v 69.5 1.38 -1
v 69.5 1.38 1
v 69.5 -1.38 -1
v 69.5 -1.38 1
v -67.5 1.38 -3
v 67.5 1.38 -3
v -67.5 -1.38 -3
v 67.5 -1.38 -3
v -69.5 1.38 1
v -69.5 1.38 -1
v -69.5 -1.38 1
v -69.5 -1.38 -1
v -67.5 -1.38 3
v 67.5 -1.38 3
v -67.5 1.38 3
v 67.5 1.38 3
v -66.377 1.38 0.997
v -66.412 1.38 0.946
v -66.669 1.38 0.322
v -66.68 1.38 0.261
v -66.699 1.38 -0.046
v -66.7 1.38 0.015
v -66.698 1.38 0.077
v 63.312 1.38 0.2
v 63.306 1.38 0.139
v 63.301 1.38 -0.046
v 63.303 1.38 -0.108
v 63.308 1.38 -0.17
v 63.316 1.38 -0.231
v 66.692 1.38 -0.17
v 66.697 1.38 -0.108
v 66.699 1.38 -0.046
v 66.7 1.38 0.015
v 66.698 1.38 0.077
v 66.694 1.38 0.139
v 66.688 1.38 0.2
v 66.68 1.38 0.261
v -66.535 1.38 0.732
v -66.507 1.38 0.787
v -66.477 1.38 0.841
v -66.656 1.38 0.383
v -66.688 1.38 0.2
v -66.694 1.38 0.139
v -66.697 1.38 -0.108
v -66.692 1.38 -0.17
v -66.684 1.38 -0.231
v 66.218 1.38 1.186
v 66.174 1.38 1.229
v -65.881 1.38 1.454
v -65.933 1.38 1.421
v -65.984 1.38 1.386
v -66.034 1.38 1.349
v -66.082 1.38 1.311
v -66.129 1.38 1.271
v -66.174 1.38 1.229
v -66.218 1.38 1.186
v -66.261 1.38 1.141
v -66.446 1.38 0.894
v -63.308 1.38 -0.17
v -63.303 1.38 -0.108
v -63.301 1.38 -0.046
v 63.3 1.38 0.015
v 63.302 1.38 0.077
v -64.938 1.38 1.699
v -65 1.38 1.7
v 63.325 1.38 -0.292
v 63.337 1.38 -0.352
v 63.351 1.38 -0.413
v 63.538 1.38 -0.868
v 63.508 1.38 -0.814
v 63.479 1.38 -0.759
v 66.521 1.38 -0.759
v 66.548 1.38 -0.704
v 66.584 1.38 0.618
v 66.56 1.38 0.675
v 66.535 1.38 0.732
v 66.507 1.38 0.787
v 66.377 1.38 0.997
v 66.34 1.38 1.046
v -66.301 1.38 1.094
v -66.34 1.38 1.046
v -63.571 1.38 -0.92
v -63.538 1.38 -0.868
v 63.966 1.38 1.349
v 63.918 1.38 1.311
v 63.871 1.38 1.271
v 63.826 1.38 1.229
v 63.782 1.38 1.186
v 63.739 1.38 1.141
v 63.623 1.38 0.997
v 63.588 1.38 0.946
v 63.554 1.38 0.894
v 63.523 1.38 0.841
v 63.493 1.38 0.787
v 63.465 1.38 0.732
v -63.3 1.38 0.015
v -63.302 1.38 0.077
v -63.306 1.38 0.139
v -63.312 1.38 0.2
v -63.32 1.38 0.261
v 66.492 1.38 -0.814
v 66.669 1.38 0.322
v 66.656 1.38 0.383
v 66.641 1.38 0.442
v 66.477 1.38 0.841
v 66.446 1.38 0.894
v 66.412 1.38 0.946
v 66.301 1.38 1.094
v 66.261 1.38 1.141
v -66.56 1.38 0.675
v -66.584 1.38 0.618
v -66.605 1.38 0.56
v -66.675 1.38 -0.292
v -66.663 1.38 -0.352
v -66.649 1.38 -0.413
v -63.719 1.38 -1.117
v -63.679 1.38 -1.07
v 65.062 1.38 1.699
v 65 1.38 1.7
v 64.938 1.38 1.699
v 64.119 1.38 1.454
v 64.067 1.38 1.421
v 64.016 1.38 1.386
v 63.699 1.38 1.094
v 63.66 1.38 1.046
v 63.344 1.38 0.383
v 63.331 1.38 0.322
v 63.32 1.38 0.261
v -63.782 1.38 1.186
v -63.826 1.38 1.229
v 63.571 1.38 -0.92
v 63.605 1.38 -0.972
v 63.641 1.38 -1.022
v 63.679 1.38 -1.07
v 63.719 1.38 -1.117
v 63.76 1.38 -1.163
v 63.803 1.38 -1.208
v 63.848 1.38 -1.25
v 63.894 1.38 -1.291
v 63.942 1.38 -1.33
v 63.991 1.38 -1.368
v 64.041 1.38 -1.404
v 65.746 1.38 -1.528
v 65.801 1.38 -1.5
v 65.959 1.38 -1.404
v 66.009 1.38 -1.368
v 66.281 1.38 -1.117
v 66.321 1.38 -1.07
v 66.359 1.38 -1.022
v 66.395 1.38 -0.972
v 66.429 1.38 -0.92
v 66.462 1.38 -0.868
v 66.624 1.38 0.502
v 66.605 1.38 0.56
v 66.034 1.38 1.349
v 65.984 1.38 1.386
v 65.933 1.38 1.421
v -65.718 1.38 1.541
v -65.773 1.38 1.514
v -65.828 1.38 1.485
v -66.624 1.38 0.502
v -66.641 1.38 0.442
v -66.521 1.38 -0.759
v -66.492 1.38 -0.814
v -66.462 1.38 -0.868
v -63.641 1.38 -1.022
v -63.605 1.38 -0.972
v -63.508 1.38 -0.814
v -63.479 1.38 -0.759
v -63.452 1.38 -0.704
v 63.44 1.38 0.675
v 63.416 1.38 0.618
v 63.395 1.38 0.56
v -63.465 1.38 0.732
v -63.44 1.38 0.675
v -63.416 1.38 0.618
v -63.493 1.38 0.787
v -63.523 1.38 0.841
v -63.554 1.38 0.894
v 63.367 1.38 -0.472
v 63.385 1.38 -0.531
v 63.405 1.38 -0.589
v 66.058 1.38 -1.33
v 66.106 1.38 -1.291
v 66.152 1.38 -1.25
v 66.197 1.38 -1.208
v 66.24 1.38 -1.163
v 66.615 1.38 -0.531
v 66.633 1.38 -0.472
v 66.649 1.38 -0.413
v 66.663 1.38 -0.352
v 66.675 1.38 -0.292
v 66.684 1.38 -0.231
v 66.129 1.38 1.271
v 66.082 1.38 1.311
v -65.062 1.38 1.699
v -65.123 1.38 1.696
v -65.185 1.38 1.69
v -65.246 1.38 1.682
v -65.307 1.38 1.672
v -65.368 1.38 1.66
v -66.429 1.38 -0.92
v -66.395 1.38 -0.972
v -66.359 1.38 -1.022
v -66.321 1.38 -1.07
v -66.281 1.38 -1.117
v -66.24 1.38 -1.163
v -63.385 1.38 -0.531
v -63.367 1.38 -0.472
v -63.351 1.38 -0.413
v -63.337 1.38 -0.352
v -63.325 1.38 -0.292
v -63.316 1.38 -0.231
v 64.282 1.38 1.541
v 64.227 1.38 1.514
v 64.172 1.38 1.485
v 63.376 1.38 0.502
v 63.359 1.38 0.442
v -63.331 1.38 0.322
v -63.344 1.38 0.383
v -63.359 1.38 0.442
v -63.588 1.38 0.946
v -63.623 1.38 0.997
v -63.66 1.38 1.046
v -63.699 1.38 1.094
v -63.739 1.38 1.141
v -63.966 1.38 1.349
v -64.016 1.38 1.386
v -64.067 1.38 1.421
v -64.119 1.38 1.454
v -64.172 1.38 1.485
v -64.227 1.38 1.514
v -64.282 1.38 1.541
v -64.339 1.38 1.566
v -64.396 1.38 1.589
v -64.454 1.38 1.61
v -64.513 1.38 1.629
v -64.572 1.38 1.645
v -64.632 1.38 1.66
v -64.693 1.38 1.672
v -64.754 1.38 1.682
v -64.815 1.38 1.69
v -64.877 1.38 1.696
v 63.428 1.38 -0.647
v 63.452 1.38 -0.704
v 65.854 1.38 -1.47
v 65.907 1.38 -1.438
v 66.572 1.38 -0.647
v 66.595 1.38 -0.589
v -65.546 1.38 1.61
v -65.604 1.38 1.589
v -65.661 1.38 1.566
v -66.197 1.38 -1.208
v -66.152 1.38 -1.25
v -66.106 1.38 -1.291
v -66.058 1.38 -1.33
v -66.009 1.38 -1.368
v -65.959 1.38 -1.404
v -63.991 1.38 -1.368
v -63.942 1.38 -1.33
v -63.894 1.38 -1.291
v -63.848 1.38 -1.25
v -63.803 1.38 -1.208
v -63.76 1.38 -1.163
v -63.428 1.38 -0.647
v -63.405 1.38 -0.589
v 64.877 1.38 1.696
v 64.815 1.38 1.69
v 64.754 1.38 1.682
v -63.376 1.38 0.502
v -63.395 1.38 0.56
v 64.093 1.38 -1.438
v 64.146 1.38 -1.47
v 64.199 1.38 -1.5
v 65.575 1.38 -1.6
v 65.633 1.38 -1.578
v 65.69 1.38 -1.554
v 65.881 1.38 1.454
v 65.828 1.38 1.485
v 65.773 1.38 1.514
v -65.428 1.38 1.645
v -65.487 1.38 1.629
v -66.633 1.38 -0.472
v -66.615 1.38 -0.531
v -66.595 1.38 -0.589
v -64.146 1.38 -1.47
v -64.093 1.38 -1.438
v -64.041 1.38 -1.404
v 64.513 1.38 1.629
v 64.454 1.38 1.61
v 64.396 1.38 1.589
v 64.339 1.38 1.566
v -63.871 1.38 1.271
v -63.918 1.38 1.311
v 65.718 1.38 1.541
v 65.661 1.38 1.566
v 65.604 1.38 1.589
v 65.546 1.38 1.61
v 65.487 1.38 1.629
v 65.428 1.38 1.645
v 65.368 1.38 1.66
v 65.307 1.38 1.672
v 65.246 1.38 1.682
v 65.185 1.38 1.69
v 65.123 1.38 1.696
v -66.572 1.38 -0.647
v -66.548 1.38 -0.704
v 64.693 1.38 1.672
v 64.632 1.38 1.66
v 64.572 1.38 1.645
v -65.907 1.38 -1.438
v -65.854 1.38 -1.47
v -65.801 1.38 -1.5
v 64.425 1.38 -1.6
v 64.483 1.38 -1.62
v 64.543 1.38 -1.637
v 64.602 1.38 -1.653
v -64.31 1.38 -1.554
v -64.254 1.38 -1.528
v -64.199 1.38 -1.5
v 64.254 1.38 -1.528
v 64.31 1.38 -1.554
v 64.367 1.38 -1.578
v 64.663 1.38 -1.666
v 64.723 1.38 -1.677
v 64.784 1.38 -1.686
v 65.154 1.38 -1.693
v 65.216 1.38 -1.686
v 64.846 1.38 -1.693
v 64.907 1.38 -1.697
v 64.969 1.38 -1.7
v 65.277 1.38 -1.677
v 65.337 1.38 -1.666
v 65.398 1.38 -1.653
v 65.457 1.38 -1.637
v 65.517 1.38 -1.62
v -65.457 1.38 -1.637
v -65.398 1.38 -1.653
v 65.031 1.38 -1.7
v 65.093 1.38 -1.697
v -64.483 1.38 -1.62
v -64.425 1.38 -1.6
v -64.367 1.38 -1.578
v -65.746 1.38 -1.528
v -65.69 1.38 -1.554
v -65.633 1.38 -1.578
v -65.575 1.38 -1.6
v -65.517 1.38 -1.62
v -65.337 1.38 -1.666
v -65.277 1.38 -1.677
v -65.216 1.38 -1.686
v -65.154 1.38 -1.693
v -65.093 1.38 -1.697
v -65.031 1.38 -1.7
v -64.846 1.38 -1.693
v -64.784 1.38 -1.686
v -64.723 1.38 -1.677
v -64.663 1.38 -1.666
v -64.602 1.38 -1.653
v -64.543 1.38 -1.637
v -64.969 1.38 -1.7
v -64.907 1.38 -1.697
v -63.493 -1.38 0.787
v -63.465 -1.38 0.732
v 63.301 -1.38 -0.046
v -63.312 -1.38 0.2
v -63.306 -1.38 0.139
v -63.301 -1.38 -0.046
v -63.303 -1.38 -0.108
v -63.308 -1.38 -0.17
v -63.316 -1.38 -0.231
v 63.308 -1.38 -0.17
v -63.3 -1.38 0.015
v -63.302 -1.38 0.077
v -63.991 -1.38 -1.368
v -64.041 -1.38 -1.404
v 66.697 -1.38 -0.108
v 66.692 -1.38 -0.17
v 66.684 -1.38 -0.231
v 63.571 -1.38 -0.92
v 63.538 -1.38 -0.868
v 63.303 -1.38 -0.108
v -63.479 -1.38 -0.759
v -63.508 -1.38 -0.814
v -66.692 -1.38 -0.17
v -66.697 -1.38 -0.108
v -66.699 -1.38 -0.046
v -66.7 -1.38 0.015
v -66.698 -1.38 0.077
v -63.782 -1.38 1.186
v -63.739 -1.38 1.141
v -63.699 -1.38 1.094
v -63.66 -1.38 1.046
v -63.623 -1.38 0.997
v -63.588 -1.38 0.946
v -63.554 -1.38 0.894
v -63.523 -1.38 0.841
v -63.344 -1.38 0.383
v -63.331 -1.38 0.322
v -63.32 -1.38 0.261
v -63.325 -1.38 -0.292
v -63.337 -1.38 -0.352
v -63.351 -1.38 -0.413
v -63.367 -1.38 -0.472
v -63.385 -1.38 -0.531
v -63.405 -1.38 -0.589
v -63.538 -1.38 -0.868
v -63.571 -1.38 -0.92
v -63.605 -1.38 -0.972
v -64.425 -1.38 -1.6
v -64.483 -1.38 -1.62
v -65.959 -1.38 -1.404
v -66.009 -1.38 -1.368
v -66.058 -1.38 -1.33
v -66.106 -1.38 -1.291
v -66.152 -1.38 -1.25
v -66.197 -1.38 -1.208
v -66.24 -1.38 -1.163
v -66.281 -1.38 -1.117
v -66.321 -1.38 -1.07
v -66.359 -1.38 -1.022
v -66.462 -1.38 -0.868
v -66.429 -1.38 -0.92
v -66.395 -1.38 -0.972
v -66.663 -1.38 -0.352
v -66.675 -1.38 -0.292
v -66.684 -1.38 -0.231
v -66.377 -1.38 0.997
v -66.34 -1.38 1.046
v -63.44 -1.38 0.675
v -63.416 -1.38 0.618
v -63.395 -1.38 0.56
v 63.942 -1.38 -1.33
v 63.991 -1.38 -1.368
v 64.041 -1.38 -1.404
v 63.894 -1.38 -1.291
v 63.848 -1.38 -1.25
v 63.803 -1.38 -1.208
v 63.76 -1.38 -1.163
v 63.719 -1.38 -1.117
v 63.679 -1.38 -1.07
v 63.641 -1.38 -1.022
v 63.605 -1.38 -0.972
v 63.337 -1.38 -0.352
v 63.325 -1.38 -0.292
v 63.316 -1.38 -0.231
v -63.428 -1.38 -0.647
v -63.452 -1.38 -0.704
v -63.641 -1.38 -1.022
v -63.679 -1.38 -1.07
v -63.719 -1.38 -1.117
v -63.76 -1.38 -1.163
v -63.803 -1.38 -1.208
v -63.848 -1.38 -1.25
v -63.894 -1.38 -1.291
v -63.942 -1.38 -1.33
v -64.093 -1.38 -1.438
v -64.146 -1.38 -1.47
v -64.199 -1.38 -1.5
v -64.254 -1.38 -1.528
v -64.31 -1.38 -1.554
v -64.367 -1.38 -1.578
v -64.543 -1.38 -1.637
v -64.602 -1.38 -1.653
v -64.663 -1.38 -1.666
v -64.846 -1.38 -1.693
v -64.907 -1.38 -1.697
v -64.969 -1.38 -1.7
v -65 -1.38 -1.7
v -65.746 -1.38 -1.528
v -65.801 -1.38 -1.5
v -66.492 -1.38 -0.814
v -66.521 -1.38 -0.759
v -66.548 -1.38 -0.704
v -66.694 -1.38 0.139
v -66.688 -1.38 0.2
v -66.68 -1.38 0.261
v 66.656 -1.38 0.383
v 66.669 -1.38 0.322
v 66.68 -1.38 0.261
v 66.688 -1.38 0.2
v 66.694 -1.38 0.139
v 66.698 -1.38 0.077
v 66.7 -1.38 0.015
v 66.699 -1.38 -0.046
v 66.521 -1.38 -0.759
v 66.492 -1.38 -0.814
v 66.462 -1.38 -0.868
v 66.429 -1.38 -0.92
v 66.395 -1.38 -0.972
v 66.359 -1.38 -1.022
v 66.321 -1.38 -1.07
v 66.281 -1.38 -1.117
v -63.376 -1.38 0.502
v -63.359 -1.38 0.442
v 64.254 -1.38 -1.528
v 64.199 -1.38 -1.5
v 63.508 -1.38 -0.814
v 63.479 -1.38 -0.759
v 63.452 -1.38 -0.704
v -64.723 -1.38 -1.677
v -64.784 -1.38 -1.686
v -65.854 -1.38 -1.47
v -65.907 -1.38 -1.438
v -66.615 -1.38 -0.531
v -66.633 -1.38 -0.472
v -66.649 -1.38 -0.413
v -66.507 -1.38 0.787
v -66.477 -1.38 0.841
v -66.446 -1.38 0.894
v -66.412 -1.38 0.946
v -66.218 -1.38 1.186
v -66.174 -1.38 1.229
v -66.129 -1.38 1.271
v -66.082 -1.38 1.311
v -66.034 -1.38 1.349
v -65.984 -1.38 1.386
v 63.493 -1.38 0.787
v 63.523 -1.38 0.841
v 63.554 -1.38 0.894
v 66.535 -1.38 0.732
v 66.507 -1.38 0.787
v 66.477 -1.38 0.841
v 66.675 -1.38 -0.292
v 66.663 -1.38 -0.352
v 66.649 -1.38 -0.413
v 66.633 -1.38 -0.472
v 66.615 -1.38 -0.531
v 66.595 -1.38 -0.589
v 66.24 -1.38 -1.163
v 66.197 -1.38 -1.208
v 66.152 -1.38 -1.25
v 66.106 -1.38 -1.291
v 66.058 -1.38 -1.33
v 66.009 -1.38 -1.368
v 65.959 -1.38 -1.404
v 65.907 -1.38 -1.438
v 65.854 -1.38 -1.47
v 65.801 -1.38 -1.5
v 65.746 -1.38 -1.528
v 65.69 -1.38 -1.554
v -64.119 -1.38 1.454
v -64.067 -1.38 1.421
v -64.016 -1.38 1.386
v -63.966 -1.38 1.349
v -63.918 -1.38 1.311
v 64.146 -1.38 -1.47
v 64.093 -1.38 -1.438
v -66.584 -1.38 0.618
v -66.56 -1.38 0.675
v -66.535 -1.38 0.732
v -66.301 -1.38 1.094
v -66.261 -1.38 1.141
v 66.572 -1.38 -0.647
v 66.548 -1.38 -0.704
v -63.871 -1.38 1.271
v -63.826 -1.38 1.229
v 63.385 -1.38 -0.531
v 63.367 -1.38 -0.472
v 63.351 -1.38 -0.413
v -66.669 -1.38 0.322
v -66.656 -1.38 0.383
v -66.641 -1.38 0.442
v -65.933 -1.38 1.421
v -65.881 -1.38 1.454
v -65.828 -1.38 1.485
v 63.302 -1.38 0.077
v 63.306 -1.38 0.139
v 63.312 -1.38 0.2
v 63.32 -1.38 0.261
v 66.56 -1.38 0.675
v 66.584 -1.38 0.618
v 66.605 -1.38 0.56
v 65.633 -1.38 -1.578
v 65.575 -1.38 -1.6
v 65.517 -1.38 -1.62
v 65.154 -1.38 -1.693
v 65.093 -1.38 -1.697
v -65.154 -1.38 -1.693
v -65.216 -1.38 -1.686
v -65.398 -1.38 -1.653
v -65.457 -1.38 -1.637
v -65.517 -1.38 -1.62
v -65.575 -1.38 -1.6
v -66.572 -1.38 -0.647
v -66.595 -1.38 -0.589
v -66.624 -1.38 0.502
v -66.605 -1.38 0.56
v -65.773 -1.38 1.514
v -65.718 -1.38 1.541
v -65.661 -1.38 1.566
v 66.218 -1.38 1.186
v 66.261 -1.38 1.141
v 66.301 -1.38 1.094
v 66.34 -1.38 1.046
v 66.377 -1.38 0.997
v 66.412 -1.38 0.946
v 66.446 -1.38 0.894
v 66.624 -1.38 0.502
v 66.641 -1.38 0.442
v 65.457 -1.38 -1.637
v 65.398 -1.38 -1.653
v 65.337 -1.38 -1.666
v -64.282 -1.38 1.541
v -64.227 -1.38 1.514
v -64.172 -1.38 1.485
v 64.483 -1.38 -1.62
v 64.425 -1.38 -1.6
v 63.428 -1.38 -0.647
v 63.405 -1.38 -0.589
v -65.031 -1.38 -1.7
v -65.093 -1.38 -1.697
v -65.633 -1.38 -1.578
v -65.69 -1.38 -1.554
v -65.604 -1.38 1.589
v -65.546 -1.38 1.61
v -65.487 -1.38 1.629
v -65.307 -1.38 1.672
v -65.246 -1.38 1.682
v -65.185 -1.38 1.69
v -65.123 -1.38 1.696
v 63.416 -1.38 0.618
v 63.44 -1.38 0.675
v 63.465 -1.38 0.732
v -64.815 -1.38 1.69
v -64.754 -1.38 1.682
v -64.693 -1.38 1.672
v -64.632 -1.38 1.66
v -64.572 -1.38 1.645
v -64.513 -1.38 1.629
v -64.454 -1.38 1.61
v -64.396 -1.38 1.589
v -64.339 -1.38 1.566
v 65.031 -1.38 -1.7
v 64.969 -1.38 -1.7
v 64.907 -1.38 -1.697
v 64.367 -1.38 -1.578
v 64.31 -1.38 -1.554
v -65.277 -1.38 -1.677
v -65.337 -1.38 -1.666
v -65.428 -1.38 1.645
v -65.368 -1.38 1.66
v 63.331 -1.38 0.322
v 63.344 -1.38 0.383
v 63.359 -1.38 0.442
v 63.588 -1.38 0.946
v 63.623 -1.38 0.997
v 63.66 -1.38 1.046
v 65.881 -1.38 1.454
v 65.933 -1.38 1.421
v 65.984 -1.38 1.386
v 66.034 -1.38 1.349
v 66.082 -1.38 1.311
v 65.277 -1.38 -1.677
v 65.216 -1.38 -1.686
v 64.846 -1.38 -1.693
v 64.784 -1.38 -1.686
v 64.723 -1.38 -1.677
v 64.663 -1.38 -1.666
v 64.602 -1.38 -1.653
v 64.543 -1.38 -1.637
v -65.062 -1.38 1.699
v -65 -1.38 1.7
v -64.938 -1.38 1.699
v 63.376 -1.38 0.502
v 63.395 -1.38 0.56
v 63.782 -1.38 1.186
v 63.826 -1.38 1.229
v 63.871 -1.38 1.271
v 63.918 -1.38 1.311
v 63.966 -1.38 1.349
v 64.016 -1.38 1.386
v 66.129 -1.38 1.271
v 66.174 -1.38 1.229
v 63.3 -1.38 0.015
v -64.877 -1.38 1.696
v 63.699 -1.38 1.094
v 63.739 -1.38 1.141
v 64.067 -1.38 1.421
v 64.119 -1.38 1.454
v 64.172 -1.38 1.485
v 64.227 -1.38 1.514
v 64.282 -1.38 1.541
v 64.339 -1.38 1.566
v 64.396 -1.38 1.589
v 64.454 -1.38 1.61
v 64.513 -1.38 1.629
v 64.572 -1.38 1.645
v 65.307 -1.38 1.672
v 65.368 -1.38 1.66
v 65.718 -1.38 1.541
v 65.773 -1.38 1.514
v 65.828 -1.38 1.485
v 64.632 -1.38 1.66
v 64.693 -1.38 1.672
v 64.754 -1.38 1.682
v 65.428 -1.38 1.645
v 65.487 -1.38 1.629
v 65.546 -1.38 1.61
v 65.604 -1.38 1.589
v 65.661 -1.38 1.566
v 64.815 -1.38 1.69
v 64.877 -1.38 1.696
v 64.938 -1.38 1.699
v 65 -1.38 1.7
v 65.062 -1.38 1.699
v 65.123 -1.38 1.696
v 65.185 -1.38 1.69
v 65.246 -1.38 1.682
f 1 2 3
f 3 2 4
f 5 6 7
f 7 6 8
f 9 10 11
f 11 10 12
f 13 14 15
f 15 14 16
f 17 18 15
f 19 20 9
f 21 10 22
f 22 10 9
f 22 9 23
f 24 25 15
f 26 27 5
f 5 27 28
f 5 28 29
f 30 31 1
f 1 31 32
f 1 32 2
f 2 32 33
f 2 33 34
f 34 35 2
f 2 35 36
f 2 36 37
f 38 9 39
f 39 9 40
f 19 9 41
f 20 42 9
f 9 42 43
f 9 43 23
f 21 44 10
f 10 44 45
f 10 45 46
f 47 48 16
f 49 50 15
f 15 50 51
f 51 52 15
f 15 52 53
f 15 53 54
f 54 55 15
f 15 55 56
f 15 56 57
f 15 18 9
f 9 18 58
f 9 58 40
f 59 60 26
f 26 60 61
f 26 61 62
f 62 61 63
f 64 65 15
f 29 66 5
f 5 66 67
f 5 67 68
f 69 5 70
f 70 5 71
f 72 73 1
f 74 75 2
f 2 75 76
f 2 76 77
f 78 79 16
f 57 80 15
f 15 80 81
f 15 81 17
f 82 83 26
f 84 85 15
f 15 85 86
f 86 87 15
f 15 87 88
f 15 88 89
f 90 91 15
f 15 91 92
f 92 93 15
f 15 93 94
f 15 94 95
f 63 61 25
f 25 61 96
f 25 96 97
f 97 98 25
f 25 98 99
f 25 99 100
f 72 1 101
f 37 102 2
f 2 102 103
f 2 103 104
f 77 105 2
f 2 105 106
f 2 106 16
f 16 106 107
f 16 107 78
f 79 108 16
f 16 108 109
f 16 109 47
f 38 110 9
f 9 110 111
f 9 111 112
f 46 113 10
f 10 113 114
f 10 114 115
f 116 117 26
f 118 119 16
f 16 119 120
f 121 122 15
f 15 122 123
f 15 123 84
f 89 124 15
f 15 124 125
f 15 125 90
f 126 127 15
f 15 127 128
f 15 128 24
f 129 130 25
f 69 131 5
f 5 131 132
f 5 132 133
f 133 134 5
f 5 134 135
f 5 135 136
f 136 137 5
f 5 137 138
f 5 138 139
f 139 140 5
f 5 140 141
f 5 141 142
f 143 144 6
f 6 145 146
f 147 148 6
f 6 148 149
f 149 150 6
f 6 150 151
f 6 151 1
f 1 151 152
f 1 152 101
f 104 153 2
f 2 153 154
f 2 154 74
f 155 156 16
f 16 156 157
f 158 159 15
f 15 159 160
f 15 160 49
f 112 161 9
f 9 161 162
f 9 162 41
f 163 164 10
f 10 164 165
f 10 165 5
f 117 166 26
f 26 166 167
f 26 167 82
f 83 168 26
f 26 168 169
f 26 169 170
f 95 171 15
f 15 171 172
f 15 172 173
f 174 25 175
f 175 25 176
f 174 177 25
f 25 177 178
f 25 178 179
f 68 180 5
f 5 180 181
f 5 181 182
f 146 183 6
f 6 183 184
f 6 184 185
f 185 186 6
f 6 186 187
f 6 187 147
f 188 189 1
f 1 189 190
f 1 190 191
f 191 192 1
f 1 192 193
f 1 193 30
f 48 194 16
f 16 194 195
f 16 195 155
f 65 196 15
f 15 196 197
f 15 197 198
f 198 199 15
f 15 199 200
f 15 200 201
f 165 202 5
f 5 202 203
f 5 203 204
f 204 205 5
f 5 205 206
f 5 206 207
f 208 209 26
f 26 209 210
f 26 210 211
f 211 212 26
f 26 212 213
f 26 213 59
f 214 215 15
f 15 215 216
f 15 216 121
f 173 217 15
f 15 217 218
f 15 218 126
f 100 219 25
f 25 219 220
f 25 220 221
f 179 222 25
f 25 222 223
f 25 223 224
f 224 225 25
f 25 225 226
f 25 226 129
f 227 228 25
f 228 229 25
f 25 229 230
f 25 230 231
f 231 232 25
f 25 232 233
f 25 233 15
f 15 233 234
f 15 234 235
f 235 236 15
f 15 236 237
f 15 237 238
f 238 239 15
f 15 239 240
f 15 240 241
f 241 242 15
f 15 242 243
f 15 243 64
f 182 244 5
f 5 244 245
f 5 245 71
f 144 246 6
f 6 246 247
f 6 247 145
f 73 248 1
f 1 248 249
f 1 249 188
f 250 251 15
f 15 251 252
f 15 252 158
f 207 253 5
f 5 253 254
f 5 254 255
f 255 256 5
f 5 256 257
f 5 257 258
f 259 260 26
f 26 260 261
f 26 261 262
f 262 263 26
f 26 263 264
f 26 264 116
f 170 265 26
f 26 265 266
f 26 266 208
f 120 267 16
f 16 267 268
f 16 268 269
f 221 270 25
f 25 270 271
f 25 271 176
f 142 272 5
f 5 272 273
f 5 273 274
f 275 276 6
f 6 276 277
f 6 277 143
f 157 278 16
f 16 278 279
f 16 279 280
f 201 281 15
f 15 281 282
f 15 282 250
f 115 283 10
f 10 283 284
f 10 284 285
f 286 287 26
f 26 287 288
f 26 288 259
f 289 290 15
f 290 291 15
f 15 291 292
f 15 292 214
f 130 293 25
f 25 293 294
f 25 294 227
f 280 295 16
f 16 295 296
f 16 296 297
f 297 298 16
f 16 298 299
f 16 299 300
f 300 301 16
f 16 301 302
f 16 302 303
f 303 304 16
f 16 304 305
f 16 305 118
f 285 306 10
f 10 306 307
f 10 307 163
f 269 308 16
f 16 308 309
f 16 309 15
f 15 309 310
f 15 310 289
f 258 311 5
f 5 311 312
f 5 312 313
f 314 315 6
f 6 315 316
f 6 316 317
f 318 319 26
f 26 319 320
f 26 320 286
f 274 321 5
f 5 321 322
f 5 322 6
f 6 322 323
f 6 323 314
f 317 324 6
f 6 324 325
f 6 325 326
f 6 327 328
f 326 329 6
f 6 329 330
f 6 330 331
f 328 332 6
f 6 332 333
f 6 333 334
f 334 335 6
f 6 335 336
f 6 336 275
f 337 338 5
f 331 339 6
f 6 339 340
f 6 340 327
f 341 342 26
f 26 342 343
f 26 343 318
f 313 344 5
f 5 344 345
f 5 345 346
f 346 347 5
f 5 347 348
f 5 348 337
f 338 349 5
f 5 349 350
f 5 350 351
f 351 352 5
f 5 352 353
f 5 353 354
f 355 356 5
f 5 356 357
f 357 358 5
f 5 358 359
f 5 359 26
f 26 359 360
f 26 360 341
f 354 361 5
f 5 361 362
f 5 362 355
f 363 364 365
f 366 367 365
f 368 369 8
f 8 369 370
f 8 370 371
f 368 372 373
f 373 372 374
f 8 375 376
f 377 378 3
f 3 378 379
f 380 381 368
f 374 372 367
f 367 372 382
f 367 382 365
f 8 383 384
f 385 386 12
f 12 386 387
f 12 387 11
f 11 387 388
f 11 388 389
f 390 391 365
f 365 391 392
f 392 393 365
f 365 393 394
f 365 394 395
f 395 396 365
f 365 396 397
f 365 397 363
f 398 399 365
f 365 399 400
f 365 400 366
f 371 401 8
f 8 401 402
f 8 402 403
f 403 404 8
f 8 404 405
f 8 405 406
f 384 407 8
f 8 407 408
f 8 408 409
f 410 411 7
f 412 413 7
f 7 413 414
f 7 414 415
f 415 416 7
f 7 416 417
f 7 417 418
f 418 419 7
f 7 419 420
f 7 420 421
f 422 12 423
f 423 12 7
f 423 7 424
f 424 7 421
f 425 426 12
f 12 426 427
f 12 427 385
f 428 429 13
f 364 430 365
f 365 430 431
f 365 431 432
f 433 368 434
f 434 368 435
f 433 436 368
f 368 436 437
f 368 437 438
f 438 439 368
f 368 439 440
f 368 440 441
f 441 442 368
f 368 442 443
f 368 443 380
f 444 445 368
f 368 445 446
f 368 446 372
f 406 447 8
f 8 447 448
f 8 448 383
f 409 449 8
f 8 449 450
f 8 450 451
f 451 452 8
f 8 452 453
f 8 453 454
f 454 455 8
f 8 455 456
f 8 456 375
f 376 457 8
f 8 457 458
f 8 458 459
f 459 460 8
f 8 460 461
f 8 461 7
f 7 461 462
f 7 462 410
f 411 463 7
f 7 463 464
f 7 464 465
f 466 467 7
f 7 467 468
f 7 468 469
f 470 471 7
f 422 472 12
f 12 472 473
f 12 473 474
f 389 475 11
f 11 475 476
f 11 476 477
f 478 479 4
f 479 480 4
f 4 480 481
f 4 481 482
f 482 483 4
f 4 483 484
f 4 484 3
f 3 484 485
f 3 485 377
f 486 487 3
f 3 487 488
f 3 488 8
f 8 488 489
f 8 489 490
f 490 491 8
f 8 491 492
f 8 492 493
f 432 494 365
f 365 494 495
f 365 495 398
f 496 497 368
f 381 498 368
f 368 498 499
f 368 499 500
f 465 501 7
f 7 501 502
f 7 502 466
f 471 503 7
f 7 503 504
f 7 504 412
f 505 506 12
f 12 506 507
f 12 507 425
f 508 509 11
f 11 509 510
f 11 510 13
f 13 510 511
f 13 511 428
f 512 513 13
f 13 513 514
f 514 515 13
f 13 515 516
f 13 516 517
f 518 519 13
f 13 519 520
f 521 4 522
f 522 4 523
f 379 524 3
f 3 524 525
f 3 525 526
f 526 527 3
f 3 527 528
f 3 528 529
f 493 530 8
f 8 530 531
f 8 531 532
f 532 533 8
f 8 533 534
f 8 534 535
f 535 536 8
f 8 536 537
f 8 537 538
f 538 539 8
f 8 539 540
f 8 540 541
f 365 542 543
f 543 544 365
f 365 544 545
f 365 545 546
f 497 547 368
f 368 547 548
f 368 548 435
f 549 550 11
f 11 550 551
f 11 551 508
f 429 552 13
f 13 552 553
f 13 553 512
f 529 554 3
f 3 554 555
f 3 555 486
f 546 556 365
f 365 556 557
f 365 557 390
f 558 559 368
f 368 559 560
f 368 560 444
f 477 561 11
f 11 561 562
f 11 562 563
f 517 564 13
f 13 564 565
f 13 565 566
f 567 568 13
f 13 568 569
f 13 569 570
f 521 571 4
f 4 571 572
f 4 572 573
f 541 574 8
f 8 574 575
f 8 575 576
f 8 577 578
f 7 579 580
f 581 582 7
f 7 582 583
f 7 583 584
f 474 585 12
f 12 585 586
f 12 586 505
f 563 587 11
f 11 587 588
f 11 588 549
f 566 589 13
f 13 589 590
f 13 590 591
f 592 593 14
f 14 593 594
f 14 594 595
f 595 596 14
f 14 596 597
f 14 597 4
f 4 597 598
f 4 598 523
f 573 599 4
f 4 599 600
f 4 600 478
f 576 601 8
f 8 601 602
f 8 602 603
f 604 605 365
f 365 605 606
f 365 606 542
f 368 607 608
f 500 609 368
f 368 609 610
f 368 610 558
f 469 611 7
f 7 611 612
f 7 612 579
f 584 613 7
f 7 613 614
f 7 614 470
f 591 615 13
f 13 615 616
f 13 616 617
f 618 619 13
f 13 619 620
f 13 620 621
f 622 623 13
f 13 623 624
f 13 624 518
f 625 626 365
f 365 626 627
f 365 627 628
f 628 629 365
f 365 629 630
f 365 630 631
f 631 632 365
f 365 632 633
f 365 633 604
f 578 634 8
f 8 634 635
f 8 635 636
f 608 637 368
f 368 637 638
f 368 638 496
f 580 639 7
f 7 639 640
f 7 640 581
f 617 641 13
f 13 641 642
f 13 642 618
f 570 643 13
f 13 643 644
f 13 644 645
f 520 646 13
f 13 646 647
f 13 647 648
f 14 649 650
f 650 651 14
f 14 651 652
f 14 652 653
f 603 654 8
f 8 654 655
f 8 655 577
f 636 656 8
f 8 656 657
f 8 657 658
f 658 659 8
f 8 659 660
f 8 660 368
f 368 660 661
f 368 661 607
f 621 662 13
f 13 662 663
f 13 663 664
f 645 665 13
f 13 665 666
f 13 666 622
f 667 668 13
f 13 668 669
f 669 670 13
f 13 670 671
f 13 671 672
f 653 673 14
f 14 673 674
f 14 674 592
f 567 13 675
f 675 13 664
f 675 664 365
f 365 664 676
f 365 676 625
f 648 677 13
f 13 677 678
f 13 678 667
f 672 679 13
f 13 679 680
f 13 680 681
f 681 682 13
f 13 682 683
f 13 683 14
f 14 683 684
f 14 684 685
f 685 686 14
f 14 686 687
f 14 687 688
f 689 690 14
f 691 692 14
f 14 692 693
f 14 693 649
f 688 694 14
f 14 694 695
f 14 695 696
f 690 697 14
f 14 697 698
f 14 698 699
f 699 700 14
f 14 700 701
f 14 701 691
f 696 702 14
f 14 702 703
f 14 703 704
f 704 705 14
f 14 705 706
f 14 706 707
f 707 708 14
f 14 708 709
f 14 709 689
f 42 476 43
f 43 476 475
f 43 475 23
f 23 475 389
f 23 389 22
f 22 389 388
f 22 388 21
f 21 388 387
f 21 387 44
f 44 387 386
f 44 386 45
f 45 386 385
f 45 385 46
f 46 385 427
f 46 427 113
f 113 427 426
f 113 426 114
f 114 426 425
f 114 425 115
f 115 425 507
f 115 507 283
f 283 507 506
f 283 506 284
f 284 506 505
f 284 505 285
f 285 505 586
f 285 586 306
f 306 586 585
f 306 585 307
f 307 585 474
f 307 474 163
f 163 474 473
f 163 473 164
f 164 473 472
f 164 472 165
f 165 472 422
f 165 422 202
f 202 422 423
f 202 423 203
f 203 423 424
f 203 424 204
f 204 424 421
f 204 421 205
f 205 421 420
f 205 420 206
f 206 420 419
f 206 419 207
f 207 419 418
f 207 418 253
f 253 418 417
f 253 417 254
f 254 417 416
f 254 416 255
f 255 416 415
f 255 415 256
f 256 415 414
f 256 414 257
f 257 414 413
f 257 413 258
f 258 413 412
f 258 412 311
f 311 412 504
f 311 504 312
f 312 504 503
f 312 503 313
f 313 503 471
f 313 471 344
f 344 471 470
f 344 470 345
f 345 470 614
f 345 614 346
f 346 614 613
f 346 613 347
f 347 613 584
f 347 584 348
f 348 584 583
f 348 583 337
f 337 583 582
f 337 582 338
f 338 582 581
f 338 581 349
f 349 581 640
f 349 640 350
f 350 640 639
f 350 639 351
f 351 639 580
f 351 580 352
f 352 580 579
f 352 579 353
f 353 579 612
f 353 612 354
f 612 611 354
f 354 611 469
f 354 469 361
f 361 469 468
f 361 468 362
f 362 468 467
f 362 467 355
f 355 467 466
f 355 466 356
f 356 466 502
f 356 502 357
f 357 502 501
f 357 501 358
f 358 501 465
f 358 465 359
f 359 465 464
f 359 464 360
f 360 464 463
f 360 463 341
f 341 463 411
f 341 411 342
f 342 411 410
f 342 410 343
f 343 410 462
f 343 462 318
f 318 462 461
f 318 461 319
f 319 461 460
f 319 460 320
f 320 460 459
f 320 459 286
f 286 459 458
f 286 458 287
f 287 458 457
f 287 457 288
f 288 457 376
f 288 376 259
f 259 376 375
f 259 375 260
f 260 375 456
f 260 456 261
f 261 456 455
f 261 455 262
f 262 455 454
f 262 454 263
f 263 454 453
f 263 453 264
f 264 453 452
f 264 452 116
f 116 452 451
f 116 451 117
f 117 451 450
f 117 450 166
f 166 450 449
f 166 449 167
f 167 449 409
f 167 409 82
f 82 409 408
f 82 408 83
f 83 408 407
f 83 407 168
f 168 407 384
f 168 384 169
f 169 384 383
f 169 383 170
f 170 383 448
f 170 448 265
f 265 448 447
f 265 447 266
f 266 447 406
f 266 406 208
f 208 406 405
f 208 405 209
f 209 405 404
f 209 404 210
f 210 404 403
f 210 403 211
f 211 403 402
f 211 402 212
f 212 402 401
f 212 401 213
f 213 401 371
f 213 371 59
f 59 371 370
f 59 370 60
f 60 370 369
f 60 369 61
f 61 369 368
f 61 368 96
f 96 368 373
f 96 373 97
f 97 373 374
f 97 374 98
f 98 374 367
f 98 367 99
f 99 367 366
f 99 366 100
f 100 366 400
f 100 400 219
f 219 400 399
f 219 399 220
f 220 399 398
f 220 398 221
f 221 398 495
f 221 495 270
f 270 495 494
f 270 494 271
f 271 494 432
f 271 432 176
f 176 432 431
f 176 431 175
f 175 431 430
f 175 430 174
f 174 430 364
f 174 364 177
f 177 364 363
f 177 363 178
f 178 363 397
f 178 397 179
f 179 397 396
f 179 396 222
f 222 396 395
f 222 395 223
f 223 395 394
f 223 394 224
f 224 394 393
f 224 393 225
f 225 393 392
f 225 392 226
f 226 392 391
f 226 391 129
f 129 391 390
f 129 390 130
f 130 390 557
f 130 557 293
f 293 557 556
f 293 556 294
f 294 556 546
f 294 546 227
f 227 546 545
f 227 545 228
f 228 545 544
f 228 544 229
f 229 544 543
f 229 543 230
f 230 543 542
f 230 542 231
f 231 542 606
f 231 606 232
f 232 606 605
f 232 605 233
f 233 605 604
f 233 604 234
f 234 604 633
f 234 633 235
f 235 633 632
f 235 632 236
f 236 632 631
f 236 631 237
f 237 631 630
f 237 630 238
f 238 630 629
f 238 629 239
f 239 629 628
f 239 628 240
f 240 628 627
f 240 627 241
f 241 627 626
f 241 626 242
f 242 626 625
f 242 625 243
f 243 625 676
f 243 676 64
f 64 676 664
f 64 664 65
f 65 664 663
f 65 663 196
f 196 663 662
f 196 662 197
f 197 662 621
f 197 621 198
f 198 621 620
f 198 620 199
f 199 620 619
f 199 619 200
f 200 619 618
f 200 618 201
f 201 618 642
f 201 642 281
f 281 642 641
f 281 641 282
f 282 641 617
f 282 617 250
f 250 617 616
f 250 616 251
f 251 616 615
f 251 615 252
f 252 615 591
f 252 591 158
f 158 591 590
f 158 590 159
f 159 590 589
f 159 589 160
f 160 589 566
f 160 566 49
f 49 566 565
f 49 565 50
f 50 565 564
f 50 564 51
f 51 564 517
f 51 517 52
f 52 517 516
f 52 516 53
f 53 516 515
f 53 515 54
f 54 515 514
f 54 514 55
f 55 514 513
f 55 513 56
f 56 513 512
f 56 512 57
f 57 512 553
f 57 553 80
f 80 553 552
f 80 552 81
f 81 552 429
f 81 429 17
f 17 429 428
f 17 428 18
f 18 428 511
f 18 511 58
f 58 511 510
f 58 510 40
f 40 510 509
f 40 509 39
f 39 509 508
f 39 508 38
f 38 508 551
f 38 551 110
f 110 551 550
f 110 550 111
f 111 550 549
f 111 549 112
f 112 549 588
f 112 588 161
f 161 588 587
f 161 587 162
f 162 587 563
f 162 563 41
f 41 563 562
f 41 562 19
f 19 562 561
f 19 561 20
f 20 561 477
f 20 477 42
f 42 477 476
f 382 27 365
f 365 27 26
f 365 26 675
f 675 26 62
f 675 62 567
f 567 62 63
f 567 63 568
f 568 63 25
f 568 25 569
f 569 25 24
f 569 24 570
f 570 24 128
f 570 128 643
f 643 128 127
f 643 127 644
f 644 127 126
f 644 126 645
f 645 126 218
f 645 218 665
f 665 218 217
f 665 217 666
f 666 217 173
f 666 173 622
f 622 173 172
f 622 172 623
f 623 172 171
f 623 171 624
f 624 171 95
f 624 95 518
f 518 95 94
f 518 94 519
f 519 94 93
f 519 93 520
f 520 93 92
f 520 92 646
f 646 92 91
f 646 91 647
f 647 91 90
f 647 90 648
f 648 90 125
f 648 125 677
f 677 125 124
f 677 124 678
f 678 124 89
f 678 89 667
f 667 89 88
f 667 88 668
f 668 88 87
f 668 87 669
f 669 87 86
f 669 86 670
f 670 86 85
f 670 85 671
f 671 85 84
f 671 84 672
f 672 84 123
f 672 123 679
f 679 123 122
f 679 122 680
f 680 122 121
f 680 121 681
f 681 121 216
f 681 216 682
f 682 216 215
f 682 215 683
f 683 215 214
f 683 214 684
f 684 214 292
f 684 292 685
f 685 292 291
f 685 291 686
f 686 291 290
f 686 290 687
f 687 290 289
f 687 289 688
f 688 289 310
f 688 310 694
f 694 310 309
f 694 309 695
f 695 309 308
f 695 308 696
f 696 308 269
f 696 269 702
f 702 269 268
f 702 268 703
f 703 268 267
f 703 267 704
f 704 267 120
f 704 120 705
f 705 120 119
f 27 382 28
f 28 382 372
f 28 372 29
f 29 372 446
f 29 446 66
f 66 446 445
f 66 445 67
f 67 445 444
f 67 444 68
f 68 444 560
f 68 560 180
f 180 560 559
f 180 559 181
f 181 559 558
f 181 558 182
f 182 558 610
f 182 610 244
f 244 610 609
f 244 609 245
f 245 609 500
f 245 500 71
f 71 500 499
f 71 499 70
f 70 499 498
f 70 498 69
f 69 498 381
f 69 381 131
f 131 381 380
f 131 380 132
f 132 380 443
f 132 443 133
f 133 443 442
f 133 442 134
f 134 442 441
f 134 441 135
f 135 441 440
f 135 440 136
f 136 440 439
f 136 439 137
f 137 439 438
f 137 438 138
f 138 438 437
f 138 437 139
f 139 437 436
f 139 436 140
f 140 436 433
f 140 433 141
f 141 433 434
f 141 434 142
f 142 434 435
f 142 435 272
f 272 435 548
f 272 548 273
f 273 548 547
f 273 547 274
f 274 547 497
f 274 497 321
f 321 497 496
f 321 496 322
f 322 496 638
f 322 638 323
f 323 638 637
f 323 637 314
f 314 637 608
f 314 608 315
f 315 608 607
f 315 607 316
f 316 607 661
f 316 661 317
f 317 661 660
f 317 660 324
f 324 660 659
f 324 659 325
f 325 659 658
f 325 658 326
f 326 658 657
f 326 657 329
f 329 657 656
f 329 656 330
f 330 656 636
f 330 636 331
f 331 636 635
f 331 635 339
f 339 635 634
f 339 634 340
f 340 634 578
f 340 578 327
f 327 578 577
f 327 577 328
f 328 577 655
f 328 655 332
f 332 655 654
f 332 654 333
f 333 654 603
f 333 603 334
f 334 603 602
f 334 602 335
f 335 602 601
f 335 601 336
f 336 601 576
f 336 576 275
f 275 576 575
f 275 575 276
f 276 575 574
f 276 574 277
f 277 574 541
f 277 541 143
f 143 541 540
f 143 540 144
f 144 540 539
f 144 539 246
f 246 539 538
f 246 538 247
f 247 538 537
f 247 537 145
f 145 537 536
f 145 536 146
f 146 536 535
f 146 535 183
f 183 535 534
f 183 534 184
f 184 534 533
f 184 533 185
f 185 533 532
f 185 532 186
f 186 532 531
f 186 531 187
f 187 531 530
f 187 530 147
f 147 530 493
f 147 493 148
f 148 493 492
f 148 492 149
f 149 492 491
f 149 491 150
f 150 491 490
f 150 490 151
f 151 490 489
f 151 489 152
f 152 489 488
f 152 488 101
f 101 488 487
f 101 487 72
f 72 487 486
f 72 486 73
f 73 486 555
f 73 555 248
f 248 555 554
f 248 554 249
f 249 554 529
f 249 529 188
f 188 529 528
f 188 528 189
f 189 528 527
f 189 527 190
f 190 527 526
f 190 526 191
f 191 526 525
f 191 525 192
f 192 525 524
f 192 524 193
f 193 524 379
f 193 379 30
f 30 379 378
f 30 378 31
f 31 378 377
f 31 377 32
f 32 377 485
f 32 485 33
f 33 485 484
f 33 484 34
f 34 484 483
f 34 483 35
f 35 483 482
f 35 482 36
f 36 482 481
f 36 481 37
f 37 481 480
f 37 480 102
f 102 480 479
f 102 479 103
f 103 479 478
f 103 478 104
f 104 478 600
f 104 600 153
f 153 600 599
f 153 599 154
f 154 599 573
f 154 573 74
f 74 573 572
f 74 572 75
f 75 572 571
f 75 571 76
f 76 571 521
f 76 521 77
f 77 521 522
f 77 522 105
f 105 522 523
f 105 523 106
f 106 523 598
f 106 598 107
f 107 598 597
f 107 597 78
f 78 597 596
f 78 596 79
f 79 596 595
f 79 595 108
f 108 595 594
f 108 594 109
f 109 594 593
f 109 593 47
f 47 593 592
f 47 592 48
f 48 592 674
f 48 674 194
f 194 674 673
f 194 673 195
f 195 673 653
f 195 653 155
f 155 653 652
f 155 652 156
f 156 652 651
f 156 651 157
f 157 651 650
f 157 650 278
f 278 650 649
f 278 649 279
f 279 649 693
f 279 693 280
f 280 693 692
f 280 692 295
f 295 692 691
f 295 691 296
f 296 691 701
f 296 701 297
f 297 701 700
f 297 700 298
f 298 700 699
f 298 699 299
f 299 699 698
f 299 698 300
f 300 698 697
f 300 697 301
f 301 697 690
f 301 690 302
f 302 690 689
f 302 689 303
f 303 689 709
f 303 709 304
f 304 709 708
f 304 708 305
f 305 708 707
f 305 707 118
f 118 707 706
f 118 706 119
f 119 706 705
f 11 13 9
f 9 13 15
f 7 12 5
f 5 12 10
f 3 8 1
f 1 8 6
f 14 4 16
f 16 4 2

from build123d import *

# Parameters (mm, degrees)
SKETCH1_W               = 139
SKETCH1_H               = 6
BOSS_EXTRUDE1_DEPTH     = 1.38
CUT_EXTRUDE4_DEPTH      = 70.619448432
CUT_EXTRUDE4_DEPTH_BACK = 70.619448432
SKETCH8_R               = 1.7
CHAMFER2_SIZE           = 2


with BuildPart() as part:
    # Sketch1 → Boss-Extrude1 (new, symmetric)
    with BuildSketch(Plane(origin=(0, 0, 0), x_dir=(1, 0, 0), z_dir=(0, 1, 0))):
        Rectangle(SKETCH1_W, SKETCH1_H)
    extrude(amount=BOSS_EXTRUDE1_DEPTH, both=True)

    # Sketch8 → Cut-Extrude4 (cut, two sides: drawn at the far end of the back side and taken through both)
    with BuildSketch(Plane(origin=(0, 1.38, 0), x_dir=(1, 0, 0), z_dir=(0, 1, 0)).offset(-CUT_EXTRUDE4_DEPTH_BACK)):
        with Locations(Location((65, 0, 0), (0, 0, 270))):
            Circle(SKETCH8_R)
        with Locations(Location((-65, 0, 0), (0, 0, 270))):
            Circle(SKETCH8_R)
    extrude(amount=CUT_EXTRUDE4_DEPTH + CUT_EXTRUDE4_DEPTH_BACK, mode=Mode.SUBTRACT)

    # Chamfer2
    chamfer2_edges = [part.edges().sort_by_distance(p)[0] for p in [
        (69.5, 0, 3),
        (-69.5, 0, 3),
        (-69.5, 0, -3),
        (69.5, 0, -3),
    ]]
    chamfer(chamfer2_edges, length=CHAMFER2_SIZE)


solid = part.part
